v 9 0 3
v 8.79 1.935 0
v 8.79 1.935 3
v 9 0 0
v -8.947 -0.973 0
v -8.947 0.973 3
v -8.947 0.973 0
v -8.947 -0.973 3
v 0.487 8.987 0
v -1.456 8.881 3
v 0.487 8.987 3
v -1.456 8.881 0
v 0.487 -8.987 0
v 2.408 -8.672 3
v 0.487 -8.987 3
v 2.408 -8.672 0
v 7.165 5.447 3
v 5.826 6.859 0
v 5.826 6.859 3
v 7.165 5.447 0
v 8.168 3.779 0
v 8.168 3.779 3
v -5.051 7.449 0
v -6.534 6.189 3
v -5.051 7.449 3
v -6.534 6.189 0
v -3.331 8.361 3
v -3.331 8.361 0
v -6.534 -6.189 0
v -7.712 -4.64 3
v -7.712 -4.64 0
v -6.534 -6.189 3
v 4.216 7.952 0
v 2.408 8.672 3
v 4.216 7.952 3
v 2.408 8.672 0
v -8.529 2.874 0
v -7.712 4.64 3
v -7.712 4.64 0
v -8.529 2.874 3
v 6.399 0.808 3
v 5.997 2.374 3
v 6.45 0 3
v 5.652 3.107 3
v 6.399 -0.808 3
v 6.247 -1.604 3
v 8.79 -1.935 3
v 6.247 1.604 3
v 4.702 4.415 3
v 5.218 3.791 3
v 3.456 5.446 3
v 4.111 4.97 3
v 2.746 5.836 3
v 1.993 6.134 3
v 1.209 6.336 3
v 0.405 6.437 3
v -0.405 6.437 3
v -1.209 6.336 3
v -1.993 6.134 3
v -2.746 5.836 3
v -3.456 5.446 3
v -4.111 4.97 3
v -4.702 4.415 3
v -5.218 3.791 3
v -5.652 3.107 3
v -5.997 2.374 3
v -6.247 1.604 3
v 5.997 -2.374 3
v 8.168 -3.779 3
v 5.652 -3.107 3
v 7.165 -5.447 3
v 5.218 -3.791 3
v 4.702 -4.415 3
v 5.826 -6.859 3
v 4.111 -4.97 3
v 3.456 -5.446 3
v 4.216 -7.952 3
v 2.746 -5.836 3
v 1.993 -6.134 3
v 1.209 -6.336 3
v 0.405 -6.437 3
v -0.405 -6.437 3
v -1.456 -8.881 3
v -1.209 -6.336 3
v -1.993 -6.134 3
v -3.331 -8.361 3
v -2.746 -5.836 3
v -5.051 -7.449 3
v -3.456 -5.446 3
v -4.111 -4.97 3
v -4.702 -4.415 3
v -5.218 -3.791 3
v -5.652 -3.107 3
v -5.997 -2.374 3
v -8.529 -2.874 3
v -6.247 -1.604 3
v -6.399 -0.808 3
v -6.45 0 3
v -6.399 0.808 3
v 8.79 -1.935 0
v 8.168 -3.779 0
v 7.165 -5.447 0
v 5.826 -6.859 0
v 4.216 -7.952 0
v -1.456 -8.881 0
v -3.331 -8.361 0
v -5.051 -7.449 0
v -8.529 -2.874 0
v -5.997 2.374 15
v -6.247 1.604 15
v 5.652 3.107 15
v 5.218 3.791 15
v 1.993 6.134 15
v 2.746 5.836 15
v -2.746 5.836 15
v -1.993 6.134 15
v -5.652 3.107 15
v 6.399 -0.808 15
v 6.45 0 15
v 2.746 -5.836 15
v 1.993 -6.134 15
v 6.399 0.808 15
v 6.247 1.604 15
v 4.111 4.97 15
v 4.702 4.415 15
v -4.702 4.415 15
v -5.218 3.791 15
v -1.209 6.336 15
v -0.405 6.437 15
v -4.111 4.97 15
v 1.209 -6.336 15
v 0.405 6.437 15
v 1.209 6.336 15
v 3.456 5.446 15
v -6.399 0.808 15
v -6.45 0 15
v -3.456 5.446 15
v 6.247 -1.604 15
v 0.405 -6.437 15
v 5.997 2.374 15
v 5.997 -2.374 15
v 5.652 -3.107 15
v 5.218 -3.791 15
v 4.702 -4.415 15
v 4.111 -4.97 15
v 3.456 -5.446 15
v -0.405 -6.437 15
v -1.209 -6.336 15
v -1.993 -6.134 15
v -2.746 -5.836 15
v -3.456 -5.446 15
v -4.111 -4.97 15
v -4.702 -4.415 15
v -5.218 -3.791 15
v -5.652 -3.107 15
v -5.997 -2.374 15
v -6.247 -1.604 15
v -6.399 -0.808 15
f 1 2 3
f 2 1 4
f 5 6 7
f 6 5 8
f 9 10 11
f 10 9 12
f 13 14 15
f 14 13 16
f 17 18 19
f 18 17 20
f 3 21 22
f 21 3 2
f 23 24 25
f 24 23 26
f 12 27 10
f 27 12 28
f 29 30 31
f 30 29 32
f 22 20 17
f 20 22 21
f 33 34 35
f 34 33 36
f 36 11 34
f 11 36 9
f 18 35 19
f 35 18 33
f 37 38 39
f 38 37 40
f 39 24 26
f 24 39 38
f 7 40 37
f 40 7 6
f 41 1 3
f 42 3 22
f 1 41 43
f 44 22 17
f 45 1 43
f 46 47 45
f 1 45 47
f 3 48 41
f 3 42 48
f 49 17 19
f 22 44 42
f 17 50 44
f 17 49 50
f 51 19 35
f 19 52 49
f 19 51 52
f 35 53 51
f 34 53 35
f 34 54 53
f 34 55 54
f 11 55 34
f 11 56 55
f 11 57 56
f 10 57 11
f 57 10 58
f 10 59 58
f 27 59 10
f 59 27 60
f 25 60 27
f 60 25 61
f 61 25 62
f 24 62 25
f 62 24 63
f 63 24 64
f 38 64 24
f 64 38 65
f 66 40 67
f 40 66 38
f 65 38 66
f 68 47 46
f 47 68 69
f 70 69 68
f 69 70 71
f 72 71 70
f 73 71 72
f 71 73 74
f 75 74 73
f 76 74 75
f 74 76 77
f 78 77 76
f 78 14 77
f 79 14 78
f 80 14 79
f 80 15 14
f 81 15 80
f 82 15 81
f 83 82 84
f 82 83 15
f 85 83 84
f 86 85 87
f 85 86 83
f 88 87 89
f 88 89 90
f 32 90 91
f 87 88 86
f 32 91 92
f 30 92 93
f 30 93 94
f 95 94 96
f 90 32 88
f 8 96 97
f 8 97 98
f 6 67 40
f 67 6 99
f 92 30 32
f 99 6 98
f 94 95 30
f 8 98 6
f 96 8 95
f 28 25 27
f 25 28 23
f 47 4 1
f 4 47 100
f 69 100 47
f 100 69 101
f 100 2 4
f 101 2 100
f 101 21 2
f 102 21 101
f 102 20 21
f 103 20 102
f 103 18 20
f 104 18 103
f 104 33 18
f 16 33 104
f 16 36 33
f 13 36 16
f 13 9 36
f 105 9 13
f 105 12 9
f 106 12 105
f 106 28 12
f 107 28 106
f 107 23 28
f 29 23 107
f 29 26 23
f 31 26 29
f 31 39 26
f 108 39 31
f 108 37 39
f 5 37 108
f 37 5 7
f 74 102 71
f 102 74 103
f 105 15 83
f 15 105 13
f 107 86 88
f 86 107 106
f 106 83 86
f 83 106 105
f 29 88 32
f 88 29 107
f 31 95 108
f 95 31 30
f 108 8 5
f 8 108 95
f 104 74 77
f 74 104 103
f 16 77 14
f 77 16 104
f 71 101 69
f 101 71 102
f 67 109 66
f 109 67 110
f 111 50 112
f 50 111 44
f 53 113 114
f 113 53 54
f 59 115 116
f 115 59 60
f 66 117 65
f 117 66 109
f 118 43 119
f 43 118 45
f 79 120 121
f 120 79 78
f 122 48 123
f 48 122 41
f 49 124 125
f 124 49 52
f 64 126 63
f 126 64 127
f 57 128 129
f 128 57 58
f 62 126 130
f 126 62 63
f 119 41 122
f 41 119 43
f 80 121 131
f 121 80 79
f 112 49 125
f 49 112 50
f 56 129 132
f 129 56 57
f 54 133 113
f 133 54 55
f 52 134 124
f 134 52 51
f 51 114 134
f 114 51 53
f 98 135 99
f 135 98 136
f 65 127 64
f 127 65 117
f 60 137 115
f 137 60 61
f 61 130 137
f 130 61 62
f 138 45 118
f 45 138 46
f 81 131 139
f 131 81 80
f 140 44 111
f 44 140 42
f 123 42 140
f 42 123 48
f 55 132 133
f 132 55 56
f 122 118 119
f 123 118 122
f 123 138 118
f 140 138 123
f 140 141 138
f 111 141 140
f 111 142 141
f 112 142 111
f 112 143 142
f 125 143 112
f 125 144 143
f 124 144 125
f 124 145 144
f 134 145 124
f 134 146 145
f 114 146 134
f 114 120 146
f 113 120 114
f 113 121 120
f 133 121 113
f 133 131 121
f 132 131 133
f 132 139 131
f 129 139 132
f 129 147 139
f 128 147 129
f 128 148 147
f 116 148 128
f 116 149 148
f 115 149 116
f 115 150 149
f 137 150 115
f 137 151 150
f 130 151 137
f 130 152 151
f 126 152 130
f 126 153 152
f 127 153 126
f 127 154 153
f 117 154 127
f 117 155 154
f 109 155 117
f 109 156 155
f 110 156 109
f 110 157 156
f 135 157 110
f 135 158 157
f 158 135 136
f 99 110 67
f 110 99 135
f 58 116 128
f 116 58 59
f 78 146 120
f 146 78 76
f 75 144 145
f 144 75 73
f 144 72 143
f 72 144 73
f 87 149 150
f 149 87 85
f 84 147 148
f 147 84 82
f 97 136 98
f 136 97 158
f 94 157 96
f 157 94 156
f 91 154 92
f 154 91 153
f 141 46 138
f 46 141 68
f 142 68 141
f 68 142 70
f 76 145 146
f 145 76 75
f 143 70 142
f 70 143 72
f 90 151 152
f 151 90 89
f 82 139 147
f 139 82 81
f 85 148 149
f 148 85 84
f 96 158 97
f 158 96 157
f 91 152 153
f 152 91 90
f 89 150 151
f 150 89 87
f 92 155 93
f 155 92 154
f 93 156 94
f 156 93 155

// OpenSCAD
/**
 * Chair Leg's shoe
 * 
 * Created by Diego Viejo
 * 
 * This a replacement for a chair's leg with an internal diameter of 13.2mm. 
 * and external diameter of 16.5. Slice it ad 100% infill
 * 
 */

height = 15;

ID = 13.2 - 0.3;
OD = 16.5 + 1.5;
ODHeight = 3;

union()
{
    cylinder(d=OD, h=ODHeight);
    cylinder(d=ID, h=height, $fn=50);
}
